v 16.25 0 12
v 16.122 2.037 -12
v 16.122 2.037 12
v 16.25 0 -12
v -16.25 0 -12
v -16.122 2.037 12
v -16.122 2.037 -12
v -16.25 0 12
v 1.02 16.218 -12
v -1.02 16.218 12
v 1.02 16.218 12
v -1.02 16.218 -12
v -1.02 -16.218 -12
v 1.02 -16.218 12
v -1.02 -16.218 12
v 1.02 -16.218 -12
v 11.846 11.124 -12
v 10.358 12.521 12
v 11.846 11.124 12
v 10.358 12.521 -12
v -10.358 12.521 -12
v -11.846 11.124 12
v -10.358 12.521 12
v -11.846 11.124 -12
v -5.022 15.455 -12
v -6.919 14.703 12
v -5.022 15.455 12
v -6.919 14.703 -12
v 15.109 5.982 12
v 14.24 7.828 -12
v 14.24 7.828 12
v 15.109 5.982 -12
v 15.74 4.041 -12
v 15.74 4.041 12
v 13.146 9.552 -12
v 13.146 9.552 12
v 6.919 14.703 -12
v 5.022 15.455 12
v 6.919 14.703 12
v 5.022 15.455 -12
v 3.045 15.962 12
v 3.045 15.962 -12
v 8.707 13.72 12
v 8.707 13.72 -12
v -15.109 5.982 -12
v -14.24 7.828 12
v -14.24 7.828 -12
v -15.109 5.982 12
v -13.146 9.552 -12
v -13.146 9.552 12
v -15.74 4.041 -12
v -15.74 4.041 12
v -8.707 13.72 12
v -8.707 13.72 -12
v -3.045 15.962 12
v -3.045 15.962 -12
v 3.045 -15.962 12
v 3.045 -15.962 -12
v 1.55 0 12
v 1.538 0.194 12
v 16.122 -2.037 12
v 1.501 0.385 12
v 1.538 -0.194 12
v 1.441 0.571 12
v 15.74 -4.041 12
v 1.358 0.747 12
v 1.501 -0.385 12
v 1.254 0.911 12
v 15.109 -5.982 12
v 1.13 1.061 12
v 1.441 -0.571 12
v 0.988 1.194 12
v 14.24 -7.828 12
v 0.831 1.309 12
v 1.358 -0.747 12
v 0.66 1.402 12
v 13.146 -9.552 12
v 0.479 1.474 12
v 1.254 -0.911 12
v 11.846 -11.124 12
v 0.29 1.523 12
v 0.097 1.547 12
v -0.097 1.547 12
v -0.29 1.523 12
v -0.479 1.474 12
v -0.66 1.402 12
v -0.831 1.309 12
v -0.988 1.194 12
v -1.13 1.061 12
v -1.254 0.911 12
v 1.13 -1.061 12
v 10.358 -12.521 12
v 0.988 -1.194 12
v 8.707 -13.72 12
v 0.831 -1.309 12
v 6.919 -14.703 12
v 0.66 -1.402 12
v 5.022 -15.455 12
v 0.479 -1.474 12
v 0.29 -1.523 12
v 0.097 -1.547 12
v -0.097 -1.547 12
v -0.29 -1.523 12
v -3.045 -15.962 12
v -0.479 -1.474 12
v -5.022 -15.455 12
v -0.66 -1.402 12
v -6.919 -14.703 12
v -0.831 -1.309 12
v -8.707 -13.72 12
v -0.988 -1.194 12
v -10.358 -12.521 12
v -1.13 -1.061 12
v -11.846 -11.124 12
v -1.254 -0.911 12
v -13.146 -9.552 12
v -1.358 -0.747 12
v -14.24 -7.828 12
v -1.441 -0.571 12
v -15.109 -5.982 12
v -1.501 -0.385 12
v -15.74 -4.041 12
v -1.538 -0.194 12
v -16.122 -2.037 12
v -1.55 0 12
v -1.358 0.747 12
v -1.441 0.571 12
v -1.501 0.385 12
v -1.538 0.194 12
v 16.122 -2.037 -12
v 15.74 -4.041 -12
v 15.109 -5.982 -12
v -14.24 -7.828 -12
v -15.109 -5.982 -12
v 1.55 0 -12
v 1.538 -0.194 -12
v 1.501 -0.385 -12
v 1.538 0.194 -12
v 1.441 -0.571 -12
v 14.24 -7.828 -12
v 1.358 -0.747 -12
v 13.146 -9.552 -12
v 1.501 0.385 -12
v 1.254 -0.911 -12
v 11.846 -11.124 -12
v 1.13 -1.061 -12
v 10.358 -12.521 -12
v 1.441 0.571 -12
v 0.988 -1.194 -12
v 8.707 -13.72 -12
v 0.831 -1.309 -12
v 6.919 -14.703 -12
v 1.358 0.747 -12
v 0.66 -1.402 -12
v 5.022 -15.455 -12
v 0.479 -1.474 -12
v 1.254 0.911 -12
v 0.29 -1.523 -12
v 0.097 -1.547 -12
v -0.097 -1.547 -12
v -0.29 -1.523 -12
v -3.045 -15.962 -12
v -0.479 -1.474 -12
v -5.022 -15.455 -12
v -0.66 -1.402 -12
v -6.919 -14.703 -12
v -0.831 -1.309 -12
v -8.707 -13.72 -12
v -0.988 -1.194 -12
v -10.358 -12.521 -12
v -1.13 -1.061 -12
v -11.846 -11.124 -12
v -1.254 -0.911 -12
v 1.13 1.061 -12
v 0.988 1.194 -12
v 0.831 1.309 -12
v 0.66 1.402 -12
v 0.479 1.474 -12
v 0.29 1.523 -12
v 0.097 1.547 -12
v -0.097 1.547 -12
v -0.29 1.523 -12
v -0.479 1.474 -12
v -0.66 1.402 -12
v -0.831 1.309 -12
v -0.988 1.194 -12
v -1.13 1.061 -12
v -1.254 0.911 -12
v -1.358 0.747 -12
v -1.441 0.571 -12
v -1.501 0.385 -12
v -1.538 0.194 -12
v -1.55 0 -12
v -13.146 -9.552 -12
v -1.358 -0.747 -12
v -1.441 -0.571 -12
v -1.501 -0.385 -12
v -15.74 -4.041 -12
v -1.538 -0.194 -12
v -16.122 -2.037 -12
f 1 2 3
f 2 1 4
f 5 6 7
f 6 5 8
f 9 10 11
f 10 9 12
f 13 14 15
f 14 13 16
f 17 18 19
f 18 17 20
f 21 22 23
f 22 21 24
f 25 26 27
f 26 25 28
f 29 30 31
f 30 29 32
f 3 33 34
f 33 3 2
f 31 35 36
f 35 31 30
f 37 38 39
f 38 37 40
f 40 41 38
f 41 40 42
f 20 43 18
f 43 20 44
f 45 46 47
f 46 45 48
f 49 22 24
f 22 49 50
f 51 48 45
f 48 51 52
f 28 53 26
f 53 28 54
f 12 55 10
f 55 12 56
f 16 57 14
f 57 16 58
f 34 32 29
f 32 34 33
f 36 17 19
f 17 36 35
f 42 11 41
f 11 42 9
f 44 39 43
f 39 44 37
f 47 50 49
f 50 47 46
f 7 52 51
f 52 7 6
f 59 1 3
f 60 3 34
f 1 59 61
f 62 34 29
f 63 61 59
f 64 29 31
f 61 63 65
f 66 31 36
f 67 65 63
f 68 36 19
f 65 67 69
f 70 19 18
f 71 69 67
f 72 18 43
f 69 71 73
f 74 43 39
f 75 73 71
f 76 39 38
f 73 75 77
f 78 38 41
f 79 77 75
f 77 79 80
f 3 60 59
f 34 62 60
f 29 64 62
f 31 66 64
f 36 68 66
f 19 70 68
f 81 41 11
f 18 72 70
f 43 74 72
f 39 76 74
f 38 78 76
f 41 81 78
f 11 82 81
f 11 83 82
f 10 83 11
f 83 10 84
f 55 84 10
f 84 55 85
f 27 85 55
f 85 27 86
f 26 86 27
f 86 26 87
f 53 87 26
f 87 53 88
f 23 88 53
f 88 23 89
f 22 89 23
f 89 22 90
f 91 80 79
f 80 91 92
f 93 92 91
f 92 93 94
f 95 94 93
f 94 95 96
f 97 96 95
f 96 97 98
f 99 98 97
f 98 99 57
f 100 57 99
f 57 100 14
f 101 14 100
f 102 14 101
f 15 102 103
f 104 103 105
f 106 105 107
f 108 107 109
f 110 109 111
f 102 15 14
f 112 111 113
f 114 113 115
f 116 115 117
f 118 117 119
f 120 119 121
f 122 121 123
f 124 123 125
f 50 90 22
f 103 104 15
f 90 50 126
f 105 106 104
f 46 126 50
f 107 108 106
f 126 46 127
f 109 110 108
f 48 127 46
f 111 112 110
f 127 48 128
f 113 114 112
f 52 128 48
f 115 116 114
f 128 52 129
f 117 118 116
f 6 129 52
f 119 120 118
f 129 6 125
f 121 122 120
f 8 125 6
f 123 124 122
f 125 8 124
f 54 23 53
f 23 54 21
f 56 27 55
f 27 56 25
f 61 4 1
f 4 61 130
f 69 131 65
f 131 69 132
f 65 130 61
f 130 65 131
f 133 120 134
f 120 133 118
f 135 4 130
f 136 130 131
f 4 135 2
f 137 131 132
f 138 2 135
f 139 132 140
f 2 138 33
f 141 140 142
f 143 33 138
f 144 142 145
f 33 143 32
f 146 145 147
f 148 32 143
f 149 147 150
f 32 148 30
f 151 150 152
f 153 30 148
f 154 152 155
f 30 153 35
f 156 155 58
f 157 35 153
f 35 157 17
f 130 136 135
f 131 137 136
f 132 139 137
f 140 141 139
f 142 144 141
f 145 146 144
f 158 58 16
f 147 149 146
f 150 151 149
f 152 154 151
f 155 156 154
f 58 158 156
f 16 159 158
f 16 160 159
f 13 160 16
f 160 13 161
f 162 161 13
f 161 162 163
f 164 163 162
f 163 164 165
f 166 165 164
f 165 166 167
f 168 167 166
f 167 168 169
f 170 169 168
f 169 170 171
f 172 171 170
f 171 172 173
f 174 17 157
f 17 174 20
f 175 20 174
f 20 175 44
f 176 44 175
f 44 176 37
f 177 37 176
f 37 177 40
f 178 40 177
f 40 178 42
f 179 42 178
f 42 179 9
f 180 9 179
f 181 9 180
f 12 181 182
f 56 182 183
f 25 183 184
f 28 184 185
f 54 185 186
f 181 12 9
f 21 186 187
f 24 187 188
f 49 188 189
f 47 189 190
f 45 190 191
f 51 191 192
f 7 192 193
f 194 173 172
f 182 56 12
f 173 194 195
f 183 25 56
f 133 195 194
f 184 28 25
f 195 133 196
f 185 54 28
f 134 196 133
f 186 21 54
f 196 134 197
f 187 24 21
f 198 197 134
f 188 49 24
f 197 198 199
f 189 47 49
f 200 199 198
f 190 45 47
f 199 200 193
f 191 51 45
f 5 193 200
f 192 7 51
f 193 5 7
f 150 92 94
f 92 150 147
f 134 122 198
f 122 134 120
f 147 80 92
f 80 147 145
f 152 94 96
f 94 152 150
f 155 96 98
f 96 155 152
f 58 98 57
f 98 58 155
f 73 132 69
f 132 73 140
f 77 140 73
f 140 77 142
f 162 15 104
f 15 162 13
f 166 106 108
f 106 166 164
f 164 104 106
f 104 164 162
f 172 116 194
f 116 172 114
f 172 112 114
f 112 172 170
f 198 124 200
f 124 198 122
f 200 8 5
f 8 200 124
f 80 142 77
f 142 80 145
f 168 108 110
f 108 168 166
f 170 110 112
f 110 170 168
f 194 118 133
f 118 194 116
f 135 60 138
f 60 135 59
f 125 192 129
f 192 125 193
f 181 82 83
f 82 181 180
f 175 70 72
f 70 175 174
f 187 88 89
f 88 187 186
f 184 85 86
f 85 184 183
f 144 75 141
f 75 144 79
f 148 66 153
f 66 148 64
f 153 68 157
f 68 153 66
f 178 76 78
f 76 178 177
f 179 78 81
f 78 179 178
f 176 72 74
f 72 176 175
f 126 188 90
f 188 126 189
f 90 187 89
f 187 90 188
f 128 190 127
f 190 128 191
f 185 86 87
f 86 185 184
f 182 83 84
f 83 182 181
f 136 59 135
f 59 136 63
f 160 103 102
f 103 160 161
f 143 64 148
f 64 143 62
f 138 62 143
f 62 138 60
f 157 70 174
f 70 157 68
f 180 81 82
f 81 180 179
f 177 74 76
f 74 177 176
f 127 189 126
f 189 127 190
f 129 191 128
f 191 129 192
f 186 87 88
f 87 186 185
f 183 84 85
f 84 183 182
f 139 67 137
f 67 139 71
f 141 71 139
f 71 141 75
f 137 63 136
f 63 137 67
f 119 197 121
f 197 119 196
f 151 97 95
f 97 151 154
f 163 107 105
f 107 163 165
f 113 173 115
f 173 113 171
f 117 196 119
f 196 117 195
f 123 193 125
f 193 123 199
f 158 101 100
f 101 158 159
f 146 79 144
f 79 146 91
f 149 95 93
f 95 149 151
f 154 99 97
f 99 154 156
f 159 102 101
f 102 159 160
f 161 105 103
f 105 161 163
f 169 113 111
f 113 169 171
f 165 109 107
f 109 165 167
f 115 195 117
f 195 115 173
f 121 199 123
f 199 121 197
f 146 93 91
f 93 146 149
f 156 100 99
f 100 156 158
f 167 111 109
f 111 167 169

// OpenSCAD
$fn = 50;


difference() {
	union() {
		translate(v = [0, 0, -12.0000000000]) {
			cylinder(h = 24, r = 16.2500000000);
		}
	}
	union() {
		translate(v = [0, 0, -100.0000000000]) {
			cylinder(h = 200, r = 1.5500000000);
		}
	}
}
